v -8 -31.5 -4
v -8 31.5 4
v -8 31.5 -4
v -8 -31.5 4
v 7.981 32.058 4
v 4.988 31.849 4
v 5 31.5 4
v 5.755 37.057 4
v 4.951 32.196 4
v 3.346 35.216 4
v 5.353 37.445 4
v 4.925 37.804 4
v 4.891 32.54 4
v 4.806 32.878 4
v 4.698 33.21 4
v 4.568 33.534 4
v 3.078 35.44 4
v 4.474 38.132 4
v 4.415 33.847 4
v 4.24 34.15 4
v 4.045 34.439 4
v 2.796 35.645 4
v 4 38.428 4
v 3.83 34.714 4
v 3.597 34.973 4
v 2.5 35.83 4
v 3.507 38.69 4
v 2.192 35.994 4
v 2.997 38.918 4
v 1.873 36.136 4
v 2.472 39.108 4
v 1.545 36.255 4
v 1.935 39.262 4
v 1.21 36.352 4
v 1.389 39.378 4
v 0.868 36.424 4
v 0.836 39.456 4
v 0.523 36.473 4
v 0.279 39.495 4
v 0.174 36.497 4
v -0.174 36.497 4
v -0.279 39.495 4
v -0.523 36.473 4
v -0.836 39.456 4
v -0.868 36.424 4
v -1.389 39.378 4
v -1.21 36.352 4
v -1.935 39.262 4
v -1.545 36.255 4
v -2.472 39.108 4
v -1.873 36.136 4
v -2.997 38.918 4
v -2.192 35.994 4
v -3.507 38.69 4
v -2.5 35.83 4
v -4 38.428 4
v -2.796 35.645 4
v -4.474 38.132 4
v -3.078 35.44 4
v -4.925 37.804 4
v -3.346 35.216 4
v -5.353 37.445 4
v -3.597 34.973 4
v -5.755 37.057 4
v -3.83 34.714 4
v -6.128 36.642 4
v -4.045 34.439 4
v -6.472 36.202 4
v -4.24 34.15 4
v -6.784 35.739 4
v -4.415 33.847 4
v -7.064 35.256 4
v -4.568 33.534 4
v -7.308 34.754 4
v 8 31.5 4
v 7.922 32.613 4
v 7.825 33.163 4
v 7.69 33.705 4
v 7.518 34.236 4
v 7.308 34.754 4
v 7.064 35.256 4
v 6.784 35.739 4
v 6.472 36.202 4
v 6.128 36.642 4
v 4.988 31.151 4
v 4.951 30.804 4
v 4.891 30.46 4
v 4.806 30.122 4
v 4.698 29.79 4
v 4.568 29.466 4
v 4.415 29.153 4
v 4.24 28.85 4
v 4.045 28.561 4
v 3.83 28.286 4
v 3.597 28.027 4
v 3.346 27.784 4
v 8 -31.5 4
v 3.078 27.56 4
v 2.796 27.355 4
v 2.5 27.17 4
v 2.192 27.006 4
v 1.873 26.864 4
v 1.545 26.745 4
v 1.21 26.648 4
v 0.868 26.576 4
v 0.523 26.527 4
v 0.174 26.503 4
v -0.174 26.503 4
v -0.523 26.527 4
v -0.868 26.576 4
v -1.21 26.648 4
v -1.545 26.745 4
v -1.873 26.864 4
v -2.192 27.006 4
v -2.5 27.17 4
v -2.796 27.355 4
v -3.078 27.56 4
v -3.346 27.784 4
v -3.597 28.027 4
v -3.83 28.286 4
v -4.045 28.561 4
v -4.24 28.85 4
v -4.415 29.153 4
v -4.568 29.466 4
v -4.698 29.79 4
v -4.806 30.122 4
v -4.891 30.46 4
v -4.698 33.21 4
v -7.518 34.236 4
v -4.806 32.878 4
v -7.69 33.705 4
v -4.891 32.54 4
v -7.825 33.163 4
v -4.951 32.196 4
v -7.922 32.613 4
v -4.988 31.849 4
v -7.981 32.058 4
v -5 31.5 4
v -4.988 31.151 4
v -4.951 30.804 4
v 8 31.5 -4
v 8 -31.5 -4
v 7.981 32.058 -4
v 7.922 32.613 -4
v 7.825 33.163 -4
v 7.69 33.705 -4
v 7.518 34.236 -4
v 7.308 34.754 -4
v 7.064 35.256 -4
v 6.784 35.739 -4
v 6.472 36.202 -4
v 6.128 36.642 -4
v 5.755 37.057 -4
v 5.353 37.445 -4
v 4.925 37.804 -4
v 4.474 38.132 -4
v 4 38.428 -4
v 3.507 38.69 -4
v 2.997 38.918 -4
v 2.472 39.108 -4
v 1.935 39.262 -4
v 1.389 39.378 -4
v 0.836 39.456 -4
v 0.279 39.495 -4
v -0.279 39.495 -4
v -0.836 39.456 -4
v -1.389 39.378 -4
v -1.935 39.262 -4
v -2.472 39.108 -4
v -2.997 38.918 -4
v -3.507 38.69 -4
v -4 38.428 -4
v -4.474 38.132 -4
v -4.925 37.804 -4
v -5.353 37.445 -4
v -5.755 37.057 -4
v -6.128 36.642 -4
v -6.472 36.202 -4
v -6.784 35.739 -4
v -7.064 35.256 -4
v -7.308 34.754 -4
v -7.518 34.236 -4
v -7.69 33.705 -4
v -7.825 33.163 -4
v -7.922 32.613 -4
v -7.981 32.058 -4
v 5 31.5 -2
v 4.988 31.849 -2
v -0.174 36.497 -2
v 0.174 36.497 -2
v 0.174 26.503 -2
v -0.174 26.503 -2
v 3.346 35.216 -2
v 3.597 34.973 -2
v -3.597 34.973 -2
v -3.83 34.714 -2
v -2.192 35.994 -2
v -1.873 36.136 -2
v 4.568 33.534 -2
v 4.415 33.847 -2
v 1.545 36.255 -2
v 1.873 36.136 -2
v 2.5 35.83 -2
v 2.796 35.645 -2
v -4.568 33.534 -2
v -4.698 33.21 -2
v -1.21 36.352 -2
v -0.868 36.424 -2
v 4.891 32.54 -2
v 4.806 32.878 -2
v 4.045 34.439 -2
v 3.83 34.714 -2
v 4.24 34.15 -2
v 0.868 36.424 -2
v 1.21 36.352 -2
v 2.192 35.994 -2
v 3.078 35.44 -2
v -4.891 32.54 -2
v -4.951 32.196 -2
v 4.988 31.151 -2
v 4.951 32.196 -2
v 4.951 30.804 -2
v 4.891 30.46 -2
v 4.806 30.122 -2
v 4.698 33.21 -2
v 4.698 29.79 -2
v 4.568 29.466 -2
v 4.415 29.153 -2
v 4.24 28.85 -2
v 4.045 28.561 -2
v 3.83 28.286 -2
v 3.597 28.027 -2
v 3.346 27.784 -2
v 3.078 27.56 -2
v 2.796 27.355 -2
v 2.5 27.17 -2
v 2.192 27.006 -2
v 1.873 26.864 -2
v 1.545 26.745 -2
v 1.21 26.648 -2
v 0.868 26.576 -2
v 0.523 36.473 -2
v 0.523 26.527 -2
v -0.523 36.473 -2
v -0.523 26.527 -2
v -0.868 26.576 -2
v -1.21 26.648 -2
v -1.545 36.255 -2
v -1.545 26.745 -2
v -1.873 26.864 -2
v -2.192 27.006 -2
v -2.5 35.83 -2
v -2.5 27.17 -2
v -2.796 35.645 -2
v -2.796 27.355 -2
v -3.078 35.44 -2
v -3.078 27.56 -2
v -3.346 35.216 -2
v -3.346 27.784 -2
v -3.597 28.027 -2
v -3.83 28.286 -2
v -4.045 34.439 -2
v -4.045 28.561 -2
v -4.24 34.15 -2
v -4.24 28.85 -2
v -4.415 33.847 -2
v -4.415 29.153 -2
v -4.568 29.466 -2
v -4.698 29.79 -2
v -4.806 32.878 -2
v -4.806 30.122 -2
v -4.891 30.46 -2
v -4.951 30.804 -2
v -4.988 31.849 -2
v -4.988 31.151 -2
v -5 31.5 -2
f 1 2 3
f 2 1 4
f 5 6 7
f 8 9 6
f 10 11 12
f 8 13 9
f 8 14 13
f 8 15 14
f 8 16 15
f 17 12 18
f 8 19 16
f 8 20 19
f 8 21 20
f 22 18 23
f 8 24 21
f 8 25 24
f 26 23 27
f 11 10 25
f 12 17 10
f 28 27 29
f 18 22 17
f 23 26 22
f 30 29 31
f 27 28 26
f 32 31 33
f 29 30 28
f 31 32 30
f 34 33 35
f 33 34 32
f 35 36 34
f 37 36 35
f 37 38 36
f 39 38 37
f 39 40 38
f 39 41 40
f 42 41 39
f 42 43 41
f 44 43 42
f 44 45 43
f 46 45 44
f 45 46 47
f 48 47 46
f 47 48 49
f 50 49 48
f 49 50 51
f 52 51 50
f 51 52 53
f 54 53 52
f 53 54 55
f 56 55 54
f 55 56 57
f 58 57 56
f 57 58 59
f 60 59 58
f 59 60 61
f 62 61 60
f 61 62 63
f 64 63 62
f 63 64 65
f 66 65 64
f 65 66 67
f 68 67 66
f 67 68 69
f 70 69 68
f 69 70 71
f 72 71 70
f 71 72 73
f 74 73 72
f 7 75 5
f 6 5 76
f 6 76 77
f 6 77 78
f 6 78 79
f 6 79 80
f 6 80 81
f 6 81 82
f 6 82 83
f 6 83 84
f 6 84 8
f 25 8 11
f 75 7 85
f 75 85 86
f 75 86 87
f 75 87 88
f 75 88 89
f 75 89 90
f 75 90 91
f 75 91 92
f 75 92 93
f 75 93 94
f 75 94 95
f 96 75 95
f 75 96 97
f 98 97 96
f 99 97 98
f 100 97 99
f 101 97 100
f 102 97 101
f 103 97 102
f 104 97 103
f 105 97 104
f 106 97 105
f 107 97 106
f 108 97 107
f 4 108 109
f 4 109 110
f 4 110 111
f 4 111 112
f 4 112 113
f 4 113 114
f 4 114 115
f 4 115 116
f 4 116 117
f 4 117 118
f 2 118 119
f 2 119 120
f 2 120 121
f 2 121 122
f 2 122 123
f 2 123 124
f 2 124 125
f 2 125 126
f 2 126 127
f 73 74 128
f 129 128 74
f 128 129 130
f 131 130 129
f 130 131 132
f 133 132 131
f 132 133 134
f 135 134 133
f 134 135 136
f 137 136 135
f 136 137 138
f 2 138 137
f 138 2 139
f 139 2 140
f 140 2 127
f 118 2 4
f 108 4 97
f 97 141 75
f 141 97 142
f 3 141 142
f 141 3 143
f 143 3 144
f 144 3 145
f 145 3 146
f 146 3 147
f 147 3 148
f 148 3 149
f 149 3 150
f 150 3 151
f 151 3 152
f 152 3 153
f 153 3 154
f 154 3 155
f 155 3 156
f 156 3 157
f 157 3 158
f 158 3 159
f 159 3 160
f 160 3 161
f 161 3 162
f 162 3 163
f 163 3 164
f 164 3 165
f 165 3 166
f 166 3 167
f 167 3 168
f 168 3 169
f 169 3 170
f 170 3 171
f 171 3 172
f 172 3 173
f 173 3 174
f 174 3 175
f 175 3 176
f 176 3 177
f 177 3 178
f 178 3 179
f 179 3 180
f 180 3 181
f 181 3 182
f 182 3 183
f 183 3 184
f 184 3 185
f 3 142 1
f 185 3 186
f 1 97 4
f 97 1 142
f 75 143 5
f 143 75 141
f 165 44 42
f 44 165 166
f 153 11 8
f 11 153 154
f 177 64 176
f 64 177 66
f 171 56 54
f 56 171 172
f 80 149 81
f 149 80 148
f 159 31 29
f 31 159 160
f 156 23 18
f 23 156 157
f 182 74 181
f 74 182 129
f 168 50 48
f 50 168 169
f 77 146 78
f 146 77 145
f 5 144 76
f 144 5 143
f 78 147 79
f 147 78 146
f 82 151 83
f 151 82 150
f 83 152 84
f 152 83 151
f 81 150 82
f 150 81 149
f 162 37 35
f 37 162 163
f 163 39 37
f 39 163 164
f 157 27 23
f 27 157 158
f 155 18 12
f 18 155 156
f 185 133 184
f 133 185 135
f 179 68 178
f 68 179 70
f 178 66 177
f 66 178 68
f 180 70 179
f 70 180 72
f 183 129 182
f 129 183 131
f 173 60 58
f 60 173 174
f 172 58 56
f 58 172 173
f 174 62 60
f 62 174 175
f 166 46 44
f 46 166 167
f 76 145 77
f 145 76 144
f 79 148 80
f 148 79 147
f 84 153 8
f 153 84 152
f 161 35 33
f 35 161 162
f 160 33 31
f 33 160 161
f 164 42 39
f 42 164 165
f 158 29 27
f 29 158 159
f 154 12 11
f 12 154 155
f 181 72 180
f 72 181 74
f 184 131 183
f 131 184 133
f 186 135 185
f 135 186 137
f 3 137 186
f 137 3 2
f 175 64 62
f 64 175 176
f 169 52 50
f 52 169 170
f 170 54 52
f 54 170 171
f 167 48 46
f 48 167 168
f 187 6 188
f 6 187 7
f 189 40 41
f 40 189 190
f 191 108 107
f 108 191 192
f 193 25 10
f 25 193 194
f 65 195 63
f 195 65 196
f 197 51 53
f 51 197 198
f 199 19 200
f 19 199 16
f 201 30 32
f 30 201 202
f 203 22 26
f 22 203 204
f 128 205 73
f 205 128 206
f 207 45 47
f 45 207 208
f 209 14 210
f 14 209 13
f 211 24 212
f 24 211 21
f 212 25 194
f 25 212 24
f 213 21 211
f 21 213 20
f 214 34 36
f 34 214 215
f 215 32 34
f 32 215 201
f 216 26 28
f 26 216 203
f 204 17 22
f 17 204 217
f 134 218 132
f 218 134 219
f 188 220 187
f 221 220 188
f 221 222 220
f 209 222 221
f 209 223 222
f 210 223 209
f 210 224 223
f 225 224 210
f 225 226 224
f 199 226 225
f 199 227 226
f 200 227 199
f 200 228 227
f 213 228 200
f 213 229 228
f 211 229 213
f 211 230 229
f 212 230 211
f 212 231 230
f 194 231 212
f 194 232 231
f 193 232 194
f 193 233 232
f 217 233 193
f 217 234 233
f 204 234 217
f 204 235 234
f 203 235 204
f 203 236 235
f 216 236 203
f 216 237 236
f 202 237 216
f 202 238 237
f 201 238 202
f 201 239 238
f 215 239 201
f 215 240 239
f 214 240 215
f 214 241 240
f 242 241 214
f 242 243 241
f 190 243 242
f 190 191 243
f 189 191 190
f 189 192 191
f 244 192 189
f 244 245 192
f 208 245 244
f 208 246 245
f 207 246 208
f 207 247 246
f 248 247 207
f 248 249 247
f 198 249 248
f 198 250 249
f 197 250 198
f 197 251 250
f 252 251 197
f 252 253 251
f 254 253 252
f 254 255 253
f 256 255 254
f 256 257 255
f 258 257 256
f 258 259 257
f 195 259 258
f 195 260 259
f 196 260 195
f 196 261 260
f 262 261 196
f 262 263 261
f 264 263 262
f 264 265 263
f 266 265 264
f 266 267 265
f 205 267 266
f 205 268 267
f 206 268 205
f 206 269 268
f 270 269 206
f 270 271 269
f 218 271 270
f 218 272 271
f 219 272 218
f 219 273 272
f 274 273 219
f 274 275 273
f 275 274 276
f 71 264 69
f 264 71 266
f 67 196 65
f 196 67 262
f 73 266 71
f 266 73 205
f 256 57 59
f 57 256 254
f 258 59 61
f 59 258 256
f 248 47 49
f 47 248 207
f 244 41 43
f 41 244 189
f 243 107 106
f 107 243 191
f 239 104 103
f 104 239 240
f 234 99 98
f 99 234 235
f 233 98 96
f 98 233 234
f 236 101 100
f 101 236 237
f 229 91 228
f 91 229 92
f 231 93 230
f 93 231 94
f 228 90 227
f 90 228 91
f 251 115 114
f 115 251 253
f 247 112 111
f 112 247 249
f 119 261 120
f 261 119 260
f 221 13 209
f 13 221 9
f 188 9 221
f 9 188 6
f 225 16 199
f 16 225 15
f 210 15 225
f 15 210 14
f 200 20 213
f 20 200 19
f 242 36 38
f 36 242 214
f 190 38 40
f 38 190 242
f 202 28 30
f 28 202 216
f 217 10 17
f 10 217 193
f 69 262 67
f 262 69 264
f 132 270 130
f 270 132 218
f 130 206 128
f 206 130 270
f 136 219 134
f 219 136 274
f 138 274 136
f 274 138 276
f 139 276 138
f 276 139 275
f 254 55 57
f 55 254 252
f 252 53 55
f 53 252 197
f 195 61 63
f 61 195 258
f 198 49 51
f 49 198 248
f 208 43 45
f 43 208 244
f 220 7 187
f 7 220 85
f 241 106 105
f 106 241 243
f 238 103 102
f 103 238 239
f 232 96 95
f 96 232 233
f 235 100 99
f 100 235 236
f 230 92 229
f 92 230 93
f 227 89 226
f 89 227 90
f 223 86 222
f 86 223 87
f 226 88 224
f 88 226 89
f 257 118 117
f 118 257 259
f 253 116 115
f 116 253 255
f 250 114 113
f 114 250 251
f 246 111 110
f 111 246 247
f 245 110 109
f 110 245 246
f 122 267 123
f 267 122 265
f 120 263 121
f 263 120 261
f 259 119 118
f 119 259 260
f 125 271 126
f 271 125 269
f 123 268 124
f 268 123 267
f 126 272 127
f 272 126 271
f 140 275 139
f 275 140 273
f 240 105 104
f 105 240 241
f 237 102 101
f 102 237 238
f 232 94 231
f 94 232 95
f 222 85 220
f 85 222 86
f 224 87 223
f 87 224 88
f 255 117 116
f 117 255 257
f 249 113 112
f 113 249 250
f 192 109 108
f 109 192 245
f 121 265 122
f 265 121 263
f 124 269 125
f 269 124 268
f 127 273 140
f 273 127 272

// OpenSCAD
/* 
 * Telebot 1.1
 * Copyright (c) 2015-2016 by Paul-Louis Ageneau
 *
 * This program is free software: you can redistribute it and/or modify
 * it under the terms of the GNU General Public License as published by
 * the Free Software Foundation, either version 3 of the License, or
 * (at your option) any later version.
 *
 * This program is distributed in the hope that it will be useful,
 * but WITHOUT ANY WARRANTY; without even the implied warranty of
 * MERCHANTABILITY or FITNESS FOR A PARTICULAR PURPOSE.  See the
 * GNU General Public License for more details.
 *
 * You should have received a copy of the GNU General Public License
 * along with this program.  If not, see <http://www.gnu.org/licenses/>.
 */

// Back wheel support

axis_radius = 5;
width = (axis_radius + 3)*2;
depth = 45 + 5 + 5 + 8;

difference() {
    union() {
        cube([width, depth, width/2], center = true);
        translate([0, depth/2, 0]) cylinder(h = width/2, r=width/2, center=true, $fn = 90);
    }
    translate([0, depth/2, -width/8]) cylinder(h = width, r=axis_radius, $fn = 90);
}
